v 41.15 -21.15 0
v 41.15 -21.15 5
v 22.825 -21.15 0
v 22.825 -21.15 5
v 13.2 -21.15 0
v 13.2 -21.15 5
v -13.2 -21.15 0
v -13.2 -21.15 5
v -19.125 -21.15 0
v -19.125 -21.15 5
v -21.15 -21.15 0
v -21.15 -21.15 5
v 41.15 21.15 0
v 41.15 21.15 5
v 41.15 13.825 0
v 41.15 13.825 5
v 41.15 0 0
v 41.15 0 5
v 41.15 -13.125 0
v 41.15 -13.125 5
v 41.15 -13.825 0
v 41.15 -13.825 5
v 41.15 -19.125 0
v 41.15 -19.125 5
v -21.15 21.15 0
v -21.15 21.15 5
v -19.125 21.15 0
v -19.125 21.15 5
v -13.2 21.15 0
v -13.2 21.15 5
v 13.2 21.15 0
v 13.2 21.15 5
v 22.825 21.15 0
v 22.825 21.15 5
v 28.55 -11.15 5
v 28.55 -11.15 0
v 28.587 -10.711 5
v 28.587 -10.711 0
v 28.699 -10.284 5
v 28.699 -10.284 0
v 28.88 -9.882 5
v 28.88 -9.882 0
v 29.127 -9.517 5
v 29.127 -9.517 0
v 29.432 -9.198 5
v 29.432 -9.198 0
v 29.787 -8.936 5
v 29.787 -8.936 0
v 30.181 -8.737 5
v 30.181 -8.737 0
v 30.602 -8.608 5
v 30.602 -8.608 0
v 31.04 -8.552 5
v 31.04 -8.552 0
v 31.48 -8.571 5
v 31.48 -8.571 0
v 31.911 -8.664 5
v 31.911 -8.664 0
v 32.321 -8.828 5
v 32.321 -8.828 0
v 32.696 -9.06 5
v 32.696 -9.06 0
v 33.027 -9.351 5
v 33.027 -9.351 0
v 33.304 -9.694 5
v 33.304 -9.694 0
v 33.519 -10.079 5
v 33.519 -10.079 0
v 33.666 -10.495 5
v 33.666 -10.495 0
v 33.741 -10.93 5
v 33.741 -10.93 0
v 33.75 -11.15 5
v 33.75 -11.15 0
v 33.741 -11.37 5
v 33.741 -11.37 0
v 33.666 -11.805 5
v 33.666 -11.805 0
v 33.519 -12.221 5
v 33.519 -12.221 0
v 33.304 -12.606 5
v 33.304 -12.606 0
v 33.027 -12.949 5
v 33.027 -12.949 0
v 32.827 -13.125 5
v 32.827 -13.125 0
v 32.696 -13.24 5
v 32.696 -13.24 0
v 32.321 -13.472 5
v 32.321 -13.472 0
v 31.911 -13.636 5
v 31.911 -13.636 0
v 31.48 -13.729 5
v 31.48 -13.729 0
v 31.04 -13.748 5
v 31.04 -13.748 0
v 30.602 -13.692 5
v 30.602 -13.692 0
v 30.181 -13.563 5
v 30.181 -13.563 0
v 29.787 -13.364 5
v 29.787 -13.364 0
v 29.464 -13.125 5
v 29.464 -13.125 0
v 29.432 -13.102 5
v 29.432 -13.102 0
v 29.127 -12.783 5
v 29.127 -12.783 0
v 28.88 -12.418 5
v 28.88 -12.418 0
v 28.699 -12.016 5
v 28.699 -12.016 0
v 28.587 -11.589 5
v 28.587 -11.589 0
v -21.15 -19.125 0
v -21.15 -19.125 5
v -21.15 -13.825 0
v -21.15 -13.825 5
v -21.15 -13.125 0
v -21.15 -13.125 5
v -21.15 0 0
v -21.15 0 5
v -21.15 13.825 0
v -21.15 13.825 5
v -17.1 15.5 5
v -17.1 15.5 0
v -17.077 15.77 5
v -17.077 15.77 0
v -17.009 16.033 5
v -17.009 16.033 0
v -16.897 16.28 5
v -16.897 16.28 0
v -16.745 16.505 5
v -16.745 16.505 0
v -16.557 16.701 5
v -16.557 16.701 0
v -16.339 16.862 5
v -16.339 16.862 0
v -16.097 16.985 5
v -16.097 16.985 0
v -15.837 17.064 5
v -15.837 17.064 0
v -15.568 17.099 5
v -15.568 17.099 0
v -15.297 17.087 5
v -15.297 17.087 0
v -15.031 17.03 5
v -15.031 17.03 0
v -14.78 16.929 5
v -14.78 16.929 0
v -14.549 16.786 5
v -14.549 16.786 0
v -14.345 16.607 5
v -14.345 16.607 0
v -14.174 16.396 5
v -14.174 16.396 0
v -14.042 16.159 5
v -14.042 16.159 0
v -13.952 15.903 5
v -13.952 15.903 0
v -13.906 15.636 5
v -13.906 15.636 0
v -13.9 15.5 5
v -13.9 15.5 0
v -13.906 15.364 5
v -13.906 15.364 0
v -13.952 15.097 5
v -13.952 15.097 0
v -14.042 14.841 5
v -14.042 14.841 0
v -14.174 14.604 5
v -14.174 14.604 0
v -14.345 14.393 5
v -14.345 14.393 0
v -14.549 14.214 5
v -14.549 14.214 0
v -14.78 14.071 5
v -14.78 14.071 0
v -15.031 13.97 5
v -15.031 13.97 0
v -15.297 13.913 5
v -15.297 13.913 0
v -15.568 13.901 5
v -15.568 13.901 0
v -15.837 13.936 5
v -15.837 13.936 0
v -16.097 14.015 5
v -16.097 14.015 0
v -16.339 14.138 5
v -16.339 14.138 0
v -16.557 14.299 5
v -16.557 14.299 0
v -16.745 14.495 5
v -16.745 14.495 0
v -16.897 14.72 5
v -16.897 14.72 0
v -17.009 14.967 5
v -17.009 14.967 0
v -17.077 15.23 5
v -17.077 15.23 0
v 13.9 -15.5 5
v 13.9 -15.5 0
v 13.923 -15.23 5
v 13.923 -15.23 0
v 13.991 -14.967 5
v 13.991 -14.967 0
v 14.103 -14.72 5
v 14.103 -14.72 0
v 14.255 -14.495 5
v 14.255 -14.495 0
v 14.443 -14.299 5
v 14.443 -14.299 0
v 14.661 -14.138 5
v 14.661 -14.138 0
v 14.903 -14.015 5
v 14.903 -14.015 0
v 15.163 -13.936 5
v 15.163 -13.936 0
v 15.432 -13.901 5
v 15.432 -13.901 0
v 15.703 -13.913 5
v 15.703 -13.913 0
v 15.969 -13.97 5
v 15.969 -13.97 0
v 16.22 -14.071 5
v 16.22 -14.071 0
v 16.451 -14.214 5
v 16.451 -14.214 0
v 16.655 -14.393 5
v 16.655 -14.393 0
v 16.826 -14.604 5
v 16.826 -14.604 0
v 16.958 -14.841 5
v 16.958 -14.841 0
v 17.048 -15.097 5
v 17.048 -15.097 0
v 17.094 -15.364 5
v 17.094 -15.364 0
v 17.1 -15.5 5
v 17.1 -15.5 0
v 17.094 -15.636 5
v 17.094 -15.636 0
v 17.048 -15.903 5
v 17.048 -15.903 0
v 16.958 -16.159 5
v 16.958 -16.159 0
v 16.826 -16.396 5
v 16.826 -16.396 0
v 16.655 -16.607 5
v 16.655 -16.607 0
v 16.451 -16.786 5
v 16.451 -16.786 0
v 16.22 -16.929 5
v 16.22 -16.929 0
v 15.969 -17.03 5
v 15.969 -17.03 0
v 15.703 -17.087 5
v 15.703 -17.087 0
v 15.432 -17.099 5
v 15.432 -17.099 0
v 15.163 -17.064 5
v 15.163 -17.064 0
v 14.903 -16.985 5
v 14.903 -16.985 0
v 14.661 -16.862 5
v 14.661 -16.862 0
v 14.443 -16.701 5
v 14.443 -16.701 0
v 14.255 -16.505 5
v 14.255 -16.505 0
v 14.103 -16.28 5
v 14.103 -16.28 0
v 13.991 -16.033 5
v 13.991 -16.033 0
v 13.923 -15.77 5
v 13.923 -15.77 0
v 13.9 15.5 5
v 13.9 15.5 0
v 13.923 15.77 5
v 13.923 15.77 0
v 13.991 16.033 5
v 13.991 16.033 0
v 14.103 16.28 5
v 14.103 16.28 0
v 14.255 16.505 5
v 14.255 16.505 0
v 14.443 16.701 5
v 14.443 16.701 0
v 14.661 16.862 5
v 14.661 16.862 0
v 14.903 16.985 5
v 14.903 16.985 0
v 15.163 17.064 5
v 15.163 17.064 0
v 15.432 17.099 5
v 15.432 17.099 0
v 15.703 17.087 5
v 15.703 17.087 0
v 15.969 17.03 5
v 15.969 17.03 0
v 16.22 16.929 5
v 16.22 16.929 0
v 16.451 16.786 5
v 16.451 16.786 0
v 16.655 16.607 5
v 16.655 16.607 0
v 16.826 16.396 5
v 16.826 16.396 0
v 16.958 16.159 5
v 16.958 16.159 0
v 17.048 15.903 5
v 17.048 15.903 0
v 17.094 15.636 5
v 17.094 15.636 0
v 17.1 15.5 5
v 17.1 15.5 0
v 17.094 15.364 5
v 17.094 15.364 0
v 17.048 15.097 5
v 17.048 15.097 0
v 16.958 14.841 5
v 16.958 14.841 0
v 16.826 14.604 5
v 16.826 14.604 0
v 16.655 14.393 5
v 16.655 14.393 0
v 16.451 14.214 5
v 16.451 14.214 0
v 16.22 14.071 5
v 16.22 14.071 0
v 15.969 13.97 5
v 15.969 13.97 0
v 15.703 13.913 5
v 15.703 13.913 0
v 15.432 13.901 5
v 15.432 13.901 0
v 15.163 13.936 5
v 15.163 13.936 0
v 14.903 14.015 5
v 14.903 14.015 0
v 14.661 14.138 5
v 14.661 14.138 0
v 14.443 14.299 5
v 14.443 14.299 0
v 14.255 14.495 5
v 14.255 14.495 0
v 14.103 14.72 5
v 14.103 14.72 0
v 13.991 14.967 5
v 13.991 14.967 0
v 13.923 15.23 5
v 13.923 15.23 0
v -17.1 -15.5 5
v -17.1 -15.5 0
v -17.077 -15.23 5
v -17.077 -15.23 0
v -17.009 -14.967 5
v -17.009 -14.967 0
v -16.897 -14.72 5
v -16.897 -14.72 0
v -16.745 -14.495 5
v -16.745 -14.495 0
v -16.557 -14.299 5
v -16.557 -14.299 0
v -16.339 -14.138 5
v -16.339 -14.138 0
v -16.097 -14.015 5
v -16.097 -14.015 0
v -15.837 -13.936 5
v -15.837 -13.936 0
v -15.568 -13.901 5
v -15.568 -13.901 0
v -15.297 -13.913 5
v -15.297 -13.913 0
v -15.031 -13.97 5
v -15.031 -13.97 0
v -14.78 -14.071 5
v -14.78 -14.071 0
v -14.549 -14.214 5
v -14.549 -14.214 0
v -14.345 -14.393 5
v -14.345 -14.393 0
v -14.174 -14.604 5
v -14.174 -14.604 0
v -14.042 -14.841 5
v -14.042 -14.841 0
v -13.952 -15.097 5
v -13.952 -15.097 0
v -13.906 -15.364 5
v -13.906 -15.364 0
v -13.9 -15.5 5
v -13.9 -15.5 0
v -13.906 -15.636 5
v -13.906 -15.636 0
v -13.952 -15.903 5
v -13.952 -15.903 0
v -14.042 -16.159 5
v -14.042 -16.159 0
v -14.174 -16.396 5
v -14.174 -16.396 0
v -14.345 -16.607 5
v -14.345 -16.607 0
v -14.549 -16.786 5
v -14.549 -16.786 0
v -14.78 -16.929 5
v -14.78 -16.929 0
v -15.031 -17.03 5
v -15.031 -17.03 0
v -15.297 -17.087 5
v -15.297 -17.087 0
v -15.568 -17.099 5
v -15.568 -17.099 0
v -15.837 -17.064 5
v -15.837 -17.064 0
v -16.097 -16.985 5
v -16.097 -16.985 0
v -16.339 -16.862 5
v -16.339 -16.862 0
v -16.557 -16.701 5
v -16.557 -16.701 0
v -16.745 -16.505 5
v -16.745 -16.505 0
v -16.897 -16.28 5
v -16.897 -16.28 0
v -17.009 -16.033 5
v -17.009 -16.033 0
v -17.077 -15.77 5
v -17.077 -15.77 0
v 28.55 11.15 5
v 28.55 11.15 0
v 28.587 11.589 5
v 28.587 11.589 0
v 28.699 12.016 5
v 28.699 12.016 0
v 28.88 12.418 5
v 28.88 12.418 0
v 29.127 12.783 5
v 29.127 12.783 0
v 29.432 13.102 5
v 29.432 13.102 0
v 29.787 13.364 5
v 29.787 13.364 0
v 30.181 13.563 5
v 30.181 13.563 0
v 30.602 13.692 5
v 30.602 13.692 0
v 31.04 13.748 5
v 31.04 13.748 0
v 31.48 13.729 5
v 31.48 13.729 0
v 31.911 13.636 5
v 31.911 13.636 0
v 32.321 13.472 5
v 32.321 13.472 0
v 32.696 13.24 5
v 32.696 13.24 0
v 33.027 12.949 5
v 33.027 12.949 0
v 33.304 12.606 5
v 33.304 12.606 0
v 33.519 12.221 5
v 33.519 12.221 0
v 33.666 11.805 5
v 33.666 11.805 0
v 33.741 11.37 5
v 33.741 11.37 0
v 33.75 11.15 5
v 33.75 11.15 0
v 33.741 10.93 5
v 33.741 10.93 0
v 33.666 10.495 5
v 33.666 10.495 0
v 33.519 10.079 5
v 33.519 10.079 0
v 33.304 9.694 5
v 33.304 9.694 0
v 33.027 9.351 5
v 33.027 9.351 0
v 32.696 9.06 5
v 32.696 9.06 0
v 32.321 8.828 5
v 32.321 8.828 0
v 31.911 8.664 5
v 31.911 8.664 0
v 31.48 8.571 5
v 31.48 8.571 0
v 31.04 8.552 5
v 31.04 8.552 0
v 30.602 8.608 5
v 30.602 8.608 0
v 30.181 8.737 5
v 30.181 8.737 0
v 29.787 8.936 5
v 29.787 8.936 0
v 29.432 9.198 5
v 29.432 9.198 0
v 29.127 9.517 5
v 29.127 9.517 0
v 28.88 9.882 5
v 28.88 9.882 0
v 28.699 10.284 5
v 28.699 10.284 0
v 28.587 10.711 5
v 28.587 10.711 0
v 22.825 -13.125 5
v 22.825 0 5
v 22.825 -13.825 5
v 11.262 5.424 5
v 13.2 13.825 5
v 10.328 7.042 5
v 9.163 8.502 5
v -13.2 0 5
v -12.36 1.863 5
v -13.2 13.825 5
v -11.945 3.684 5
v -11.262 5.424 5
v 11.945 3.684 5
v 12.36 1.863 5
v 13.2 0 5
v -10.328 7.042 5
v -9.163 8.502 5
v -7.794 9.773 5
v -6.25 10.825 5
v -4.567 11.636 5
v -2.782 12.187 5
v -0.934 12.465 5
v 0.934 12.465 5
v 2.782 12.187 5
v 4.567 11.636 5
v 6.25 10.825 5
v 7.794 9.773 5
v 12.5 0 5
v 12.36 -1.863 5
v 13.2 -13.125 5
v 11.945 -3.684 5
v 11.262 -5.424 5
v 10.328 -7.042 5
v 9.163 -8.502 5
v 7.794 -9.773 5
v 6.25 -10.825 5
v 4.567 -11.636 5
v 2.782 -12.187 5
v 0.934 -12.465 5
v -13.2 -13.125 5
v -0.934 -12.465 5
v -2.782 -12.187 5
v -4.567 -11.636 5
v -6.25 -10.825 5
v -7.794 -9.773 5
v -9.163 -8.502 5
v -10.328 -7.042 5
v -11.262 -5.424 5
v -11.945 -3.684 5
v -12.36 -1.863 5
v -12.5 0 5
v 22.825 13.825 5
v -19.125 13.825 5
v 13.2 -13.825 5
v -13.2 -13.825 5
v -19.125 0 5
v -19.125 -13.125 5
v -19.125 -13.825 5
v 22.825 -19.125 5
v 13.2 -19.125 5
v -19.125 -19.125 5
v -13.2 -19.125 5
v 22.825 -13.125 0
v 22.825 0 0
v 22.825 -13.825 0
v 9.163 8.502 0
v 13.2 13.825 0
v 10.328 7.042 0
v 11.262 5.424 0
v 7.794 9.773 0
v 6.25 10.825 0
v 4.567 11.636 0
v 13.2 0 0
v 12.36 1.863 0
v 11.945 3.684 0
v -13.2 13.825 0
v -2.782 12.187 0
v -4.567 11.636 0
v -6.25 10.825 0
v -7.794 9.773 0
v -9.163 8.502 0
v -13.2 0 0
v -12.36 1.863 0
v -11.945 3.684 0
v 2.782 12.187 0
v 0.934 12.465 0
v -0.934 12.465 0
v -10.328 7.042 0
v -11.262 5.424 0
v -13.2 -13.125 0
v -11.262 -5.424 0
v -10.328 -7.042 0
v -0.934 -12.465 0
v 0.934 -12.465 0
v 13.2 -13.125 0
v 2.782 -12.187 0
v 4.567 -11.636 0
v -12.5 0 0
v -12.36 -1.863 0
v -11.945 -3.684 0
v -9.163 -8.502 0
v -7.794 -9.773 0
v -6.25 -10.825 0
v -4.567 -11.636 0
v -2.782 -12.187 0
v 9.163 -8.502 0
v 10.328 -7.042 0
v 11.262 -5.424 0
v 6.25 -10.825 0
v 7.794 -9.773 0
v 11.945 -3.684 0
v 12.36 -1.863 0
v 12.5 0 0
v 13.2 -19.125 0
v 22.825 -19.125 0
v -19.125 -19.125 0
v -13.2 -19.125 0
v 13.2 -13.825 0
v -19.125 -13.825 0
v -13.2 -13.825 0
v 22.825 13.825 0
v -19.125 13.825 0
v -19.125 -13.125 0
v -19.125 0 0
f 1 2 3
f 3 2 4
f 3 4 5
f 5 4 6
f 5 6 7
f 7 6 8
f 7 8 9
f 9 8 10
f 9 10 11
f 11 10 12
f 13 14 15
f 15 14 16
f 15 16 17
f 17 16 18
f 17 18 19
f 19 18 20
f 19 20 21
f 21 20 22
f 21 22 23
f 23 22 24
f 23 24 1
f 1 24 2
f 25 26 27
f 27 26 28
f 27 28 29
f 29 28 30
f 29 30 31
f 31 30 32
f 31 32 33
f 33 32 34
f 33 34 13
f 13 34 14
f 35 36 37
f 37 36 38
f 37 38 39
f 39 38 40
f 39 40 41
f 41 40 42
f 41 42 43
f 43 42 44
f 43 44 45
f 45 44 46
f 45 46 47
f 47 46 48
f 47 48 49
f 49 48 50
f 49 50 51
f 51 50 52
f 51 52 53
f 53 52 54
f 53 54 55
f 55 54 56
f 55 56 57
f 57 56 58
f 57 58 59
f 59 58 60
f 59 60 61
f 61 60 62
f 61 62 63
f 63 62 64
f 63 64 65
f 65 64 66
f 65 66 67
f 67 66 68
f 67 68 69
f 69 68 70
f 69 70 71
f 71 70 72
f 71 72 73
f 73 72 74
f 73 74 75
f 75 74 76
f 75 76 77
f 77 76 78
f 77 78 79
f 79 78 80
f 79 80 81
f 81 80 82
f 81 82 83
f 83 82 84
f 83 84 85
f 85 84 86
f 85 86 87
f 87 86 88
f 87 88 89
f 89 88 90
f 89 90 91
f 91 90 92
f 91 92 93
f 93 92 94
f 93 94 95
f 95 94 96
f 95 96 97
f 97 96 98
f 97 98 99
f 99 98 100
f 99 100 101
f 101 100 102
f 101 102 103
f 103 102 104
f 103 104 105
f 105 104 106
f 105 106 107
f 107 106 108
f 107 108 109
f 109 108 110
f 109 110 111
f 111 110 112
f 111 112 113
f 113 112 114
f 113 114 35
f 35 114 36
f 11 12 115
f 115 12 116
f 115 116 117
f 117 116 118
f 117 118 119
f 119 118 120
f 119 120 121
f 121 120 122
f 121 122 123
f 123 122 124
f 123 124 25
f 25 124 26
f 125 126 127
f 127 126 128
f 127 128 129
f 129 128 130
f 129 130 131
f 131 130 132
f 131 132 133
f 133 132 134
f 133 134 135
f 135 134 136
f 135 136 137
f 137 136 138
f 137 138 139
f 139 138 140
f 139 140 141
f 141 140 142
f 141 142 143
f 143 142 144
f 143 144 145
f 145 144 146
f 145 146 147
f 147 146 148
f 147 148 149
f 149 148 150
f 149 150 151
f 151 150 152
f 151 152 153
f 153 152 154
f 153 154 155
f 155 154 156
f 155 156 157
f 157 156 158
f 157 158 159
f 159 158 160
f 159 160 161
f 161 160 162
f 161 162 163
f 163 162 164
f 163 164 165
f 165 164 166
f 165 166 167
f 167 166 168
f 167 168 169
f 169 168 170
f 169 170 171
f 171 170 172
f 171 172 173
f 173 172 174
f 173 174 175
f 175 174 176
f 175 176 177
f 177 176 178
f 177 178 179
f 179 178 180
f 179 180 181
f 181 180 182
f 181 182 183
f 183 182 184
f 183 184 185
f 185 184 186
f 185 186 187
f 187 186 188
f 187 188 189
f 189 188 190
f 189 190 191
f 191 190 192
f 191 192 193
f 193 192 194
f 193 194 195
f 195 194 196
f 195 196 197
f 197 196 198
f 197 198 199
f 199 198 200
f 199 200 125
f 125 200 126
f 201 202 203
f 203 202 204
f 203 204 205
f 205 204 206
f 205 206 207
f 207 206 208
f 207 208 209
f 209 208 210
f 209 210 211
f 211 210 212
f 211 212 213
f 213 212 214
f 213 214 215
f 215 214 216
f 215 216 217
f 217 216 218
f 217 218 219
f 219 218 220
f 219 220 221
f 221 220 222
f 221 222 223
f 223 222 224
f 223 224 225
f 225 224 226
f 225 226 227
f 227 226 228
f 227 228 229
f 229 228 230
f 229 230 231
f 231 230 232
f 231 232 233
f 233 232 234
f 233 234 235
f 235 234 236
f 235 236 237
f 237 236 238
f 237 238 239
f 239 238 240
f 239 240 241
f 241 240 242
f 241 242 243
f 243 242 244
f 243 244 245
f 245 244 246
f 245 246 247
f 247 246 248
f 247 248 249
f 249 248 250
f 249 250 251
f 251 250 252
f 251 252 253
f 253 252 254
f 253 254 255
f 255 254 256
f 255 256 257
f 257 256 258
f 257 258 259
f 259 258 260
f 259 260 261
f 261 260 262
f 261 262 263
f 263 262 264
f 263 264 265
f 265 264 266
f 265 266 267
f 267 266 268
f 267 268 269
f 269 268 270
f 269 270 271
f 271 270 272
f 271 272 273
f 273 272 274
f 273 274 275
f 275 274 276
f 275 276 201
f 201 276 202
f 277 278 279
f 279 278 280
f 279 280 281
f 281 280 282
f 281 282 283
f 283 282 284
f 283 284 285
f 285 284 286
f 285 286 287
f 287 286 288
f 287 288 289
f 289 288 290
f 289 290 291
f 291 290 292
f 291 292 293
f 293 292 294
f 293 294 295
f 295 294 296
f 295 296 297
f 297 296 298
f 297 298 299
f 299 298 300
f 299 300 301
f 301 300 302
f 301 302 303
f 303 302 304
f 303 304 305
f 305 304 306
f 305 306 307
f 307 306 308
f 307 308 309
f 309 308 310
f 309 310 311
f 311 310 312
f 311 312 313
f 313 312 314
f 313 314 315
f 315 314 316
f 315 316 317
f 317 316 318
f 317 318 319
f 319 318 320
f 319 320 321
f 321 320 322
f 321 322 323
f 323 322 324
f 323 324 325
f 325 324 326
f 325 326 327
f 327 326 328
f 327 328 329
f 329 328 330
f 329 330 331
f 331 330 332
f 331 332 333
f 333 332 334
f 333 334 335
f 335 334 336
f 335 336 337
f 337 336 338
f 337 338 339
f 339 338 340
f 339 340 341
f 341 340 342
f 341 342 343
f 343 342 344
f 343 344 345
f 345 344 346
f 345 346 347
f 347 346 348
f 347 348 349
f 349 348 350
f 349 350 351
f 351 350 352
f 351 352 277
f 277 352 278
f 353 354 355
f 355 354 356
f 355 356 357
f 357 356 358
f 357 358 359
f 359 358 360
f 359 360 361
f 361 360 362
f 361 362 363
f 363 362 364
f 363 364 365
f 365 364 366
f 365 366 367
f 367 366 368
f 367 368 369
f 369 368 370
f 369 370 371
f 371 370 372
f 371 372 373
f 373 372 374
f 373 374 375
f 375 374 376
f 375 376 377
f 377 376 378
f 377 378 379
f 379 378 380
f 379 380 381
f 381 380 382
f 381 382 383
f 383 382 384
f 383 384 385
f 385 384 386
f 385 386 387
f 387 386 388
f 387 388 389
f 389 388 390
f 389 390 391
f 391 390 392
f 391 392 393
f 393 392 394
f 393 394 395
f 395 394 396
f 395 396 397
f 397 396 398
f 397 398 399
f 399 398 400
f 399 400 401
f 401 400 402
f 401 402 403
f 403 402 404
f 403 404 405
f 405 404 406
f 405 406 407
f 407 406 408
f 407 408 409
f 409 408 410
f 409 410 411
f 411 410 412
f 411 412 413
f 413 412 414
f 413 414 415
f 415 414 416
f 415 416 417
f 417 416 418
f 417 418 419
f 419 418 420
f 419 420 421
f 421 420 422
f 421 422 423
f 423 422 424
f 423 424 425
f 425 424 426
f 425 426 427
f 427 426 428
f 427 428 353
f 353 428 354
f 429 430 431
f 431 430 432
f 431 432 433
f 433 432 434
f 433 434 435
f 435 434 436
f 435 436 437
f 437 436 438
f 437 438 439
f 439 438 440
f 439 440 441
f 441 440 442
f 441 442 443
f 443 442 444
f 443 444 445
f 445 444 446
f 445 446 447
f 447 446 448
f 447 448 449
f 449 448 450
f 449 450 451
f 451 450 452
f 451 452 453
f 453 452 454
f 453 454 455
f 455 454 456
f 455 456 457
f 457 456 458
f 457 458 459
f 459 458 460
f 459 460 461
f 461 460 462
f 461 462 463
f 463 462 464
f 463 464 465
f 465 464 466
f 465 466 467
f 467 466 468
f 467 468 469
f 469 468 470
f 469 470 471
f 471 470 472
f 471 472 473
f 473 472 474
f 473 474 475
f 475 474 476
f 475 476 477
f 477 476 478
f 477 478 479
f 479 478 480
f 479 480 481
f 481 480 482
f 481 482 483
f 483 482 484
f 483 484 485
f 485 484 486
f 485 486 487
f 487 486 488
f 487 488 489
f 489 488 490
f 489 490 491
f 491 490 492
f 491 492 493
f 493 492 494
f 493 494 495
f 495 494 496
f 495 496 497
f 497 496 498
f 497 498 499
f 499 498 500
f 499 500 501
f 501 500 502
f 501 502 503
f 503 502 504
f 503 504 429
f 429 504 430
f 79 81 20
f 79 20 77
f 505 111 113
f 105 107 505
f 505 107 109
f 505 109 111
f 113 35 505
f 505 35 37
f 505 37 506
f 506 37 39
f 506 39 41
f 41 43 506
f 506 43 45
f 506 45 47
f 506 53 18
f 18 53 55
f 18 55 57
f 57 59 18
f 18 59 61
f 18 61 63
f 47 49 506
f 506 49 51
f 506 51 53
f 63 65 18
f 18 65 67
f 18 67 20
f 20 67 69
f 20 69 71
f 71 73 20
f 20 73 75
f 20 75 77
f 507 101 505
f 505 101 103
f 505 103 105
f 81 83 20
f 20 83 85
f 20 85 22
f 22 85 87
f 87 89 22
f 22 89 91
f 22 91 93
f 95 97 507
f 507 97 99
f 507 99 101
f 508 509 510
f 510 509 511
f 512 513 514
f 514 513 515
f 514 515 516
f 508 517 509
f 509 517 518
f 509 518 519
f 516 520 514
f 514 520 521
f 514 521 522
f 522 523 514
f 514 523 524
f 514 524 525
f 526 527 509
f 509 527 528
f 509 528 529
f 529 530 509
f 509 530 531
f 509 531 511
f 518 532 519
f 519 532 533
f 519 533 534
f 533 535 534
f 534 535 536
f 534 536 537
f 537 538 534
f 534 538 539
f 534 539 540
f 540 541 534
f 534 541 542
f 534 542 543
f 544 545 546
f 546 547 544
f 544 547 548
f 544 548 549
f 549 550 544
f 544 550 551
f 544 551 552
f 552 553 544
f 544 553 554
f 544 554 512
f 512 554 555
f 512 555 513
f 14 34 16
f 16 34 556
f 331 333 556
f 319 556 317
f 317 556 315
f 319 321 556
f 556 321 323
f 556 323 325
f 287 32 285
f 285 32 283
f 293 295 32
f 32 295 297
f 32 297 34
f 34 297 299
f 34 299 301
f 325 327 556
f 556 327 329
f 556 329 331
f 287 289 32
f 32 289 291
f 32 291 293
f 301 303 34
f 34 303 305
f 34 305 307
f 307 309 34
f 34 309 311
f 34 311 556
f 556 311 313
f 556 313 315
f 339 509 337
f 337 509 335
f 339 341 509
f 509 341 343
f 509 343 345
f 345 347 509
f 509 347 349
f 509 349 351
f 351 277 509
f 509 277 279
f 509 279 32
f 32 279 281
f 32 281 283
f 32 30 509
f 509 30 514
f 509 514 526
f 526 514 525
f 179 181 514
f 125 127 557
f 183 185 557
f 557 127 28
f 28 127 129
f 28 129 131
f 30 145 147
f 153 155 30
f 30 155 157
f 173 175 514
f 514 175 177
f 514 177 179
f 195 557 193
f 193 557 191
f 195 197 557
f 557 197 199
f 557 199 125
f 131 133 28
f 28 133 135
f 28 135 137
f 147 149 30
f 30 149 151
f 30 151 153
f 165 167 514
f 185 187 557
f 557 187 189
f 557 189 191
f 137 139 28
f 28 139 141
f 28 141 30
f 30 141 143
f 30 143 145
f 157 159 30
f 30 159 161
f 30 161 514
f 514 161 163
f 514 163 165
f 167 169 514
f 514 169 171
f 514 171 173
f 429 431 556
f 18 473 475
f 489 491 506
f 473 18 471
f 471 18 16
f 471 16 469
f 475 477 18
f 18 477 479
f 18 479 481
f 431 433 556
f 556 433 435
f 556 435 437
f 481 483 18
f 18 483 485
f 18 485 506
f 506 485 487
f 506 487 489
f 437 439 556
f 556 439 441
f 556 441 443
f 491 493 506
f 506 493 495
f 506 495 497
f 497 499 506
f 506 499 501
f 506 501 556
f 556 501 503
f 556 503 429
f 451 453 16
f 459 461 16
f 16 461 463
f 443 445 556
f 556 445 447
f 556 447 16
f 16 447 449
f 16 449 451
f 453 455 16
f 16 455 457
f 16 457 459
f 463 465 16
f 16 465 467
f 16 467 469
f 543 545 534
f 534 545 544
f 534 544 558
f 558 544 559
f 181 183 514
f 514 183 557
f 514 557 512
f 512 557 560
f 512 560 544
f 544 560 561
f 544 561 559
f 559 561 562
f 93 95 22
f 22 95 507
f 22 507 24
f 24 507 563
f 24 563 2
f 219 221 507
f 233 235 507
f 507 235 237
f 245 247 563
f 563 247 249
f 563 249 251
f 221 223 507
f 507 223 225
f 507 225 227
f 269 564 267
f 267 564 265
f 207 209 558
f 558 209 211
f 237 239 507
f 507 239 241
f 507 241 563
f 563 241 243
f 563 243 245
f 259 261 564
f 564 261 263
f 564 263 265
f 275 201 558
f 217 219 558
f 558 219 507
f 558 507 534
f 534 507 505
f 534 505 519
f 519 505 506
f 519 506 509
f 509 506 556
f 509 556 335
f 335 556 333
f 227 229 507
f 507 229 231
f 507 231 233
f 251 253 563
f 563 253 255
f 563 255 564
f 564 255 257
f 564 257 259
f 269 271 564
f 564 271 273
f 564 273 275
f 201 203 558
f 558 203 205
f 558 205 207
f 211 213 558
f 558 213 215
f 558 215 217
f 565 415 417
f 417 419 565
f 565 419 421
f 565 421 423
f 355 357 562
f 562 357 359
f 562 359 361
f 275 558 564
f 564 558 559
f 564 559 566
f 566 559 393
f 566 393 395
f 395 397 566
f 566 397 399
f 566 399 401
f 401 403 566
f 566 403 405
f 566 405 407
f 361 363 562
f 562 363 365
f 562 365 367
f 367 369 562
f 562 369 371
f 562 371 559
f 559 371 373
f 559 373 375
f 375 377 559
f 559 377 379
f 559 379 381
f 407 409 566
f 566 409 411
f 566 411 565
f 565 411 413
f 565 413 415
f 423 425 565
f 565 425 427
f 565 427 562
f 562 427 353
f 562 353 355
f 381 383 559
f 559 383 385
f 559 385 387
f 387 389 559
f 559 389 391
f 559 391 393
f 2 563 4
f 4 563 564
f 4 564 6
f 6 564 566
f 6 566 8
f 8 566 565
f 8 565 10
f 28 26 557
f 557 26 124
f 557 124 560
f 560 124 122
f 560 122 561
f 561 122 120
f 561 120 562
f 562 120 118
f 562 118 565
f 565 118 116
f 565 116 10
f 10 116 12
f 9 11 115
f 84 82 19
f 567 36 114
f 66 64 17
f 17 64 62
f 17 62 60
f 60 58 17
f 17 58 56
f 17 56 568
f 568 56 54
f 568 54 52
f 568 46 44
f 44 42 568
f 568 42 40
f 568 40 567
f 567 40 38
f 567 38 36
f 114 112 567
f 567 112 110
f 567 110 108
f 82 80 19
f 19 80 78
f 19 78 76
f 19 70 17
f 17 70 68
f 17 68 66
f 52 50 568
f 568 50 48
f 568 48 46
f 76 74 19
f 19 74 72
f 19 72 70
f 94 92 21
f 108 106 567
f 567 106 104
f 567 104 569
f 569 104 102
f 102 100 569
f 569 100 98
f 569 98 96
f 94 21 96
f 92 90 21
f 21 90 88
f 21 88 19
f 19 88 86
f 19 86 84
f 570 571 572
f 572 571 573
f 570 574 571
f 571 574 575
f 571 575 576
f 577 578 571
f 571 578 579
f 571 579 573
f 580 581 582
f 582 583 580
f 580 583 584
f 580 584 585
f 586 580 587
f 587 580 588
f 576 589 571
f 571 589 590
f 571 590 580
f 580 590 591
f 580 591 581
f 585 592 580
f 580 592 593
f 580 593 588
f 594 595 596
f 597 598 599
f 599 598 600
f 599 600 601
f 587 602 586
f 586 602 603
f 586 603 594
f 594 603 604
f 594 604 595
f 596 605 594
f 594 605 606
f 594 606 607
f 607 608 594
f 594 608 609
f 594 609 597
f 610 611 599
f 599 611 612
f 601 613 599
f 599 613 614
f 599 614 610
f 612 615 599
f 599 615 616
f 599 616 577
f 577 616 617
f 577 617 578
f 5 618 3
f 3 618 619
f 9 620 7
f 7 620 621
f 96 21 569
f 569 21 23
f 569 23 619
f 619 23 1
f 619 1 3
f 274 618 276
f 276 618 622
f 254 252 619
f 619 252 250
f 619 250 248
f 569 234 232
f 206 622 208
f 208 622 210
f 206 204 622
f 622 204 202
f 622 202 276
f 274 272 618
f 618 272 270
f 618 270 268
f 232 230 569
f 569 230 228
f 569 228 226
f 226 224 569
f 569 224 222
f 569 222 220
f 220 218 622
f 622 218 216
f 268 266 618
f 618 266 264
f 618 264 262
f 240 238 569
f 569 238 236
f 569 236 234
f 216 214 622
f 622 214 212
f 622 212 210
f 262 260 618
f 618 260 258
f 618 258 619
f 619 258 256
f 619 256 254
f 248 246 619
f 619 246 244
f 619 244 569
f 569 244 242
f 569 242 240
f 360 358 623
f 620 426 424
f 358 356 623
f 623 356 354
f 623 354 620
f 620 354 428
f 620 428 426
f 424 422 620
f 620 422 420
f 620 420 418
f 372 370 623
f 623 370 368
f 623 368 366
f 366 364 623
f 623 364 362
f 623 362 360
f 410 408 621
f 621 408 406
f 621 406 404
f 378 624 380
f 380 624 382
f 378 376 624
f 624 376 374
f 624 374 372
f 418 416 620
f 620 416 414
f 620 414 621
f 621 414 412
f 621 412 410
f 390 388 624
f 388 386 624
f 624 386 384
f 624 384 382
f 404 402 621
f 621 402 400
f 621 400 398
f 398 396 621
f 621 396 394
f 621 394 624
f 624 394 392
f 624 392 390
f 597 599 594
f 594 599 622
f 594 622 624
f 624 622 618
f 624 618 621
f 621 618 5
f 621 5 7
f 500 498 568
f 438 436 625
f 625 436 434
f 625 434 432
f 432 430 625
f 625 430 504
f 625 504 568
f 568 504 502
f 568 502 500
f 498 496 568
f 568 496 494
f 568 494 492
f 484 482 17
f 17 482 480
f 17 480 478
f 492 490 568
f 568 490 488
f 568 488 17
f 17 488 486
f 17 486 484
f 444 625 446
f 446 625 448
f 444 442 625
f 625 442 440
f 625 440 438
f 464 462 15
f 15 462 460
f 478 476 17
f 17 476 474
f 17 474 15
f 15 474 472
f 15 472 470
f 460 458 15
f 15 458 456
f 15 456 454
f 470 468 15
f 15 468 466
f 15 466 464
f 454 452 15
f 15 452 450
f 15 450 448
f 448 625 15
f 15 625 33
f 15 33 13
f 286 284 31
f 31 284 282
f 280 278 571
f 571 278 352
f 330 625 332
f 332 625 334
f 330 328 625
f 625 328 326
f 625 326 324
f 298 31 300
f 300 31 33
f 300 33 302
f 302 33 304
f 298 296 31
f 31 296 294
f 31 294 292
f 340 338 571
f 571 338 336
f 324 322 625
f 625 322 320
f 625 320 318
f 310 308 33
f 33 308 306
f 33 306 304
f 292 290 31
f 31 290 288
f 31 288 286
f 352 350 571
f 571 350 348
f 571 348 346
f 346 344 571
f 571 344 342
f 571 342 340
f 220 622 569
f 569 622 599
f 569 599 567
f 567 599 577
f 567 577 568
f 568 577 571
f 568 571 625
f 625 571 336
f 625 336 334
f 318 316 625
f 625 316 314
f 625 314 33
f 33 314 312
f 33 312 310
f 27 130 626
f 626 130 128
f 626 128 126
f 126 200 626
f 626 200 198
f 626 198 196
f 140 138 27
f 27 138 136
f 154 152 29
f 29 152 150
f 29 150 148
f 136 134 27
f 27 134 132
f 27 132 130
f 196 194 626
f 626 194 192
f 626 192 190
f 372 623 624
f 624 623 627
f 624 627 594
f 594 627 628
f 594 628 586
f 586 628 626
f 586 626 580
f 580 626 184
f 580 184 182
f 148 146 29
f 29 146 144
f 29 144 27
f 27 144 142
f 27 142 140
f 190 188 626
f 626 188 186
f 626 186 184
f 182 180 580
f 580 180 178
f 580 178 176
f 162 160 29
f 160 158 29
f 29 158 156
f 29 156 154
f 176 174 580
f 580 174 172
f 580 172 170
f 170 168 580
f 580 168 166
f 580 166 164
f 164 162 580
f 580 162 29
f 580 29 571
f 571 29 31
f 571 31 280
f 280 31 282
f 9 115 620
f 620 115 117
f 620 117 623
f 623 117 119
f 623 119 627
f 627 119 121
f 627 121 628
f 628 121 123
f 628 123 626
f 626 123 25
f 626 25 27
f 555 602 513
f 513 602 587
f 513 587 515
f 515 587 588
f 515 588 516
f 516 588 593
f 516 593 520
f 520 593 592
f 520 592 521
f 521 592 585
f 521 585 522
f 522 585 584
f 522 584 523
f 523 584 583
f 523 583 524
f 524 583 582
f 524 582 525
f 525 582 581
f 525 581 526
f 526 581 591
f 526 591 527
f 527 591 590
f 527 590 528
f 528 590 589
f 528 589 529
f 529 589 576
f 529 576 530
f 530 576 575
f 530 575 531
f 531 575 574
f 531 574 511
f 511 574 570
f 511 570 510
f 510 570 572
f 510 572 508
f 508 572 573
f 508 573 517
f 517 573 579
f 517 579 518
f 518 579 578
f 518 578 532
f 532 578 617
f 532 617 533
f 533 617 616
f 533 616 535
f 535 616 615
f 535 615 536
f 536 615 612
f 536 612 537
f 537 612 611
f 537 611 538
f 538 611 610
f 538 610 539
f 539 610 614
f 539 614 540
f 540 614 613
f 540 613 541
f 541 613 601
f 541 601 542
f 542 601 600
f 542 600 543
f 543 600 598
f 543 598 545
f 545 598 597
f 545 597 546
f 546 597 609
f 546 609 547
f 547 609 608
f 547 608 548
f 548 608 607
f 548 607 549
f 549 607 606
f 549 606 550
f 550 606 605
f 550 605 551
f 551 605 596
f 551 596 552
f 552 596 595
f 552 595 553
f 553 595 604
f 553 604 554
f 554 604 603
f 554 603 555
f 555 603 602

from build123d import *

# Parameters (mm, degrees)
SKETCH2_W           = 42.3
SKETCH2_H           = 42.3
SKETCH2_R           = 1.6
SKETCH2_W_2         = 20
SKETCH2_R_2         = 2.6
BOSS_EXTRUDE1_DEPTH = 5
SKETCH3_R           = 12.5
CUT_EXTRUDE1_DEPTH  = 10


with BuildPart() as part:
    # Sketch2 → Boss-Extrude1 (new body)
    with BuildSketch(Plane.XY):
        Rectangle(SKETCH2_W, SKETCH2_H)
        with Locations((-15.5, -15.5)):
            Circle(SKETCH2_R, mode=Mode.SUBTRACT)
        with Locations((15.5, 15.5)):
            Circle(SKETCH2_R, mode=Mode.SUBTRACT)
        with Locations((15.5, -15.5)):
            Circle(SKETCH2_R, mode=Mode.SUBTRACT)
        with Locations((-15.5, 15.5)):
            Circle(SKETCH2_R, mode=Mode.SUBTRACT)
        with Locations((31.15, 0)):
            Rectangle(SKETCH2_W_2, SKETCH2_H)
        with Locations((31.15, -11.15)):
            Circle(SKETCH2_R_2, mode=Mode.SUBTRACT)
        with Locations((31.15, 11.15)):
            Circle(SKETCH2_R_2, mode=Mode.SUBTRACT)
    extrude(amount=BOSS_EXTRUDE1_DEPTH)

    # Sketch3 → Cut-Extrude1 (cut)
    with BuildSketch(Plane(origin=(0, 0, 0), x_dir=(-1, 0, 0), z_dir=(0, 0, -1))):
        Circle(SKETCH3_R)
    extrude(amount=-CUT_EXTRUDE1_DEPTH, mode=Mode.SUBTRACT)


solid = part.part
